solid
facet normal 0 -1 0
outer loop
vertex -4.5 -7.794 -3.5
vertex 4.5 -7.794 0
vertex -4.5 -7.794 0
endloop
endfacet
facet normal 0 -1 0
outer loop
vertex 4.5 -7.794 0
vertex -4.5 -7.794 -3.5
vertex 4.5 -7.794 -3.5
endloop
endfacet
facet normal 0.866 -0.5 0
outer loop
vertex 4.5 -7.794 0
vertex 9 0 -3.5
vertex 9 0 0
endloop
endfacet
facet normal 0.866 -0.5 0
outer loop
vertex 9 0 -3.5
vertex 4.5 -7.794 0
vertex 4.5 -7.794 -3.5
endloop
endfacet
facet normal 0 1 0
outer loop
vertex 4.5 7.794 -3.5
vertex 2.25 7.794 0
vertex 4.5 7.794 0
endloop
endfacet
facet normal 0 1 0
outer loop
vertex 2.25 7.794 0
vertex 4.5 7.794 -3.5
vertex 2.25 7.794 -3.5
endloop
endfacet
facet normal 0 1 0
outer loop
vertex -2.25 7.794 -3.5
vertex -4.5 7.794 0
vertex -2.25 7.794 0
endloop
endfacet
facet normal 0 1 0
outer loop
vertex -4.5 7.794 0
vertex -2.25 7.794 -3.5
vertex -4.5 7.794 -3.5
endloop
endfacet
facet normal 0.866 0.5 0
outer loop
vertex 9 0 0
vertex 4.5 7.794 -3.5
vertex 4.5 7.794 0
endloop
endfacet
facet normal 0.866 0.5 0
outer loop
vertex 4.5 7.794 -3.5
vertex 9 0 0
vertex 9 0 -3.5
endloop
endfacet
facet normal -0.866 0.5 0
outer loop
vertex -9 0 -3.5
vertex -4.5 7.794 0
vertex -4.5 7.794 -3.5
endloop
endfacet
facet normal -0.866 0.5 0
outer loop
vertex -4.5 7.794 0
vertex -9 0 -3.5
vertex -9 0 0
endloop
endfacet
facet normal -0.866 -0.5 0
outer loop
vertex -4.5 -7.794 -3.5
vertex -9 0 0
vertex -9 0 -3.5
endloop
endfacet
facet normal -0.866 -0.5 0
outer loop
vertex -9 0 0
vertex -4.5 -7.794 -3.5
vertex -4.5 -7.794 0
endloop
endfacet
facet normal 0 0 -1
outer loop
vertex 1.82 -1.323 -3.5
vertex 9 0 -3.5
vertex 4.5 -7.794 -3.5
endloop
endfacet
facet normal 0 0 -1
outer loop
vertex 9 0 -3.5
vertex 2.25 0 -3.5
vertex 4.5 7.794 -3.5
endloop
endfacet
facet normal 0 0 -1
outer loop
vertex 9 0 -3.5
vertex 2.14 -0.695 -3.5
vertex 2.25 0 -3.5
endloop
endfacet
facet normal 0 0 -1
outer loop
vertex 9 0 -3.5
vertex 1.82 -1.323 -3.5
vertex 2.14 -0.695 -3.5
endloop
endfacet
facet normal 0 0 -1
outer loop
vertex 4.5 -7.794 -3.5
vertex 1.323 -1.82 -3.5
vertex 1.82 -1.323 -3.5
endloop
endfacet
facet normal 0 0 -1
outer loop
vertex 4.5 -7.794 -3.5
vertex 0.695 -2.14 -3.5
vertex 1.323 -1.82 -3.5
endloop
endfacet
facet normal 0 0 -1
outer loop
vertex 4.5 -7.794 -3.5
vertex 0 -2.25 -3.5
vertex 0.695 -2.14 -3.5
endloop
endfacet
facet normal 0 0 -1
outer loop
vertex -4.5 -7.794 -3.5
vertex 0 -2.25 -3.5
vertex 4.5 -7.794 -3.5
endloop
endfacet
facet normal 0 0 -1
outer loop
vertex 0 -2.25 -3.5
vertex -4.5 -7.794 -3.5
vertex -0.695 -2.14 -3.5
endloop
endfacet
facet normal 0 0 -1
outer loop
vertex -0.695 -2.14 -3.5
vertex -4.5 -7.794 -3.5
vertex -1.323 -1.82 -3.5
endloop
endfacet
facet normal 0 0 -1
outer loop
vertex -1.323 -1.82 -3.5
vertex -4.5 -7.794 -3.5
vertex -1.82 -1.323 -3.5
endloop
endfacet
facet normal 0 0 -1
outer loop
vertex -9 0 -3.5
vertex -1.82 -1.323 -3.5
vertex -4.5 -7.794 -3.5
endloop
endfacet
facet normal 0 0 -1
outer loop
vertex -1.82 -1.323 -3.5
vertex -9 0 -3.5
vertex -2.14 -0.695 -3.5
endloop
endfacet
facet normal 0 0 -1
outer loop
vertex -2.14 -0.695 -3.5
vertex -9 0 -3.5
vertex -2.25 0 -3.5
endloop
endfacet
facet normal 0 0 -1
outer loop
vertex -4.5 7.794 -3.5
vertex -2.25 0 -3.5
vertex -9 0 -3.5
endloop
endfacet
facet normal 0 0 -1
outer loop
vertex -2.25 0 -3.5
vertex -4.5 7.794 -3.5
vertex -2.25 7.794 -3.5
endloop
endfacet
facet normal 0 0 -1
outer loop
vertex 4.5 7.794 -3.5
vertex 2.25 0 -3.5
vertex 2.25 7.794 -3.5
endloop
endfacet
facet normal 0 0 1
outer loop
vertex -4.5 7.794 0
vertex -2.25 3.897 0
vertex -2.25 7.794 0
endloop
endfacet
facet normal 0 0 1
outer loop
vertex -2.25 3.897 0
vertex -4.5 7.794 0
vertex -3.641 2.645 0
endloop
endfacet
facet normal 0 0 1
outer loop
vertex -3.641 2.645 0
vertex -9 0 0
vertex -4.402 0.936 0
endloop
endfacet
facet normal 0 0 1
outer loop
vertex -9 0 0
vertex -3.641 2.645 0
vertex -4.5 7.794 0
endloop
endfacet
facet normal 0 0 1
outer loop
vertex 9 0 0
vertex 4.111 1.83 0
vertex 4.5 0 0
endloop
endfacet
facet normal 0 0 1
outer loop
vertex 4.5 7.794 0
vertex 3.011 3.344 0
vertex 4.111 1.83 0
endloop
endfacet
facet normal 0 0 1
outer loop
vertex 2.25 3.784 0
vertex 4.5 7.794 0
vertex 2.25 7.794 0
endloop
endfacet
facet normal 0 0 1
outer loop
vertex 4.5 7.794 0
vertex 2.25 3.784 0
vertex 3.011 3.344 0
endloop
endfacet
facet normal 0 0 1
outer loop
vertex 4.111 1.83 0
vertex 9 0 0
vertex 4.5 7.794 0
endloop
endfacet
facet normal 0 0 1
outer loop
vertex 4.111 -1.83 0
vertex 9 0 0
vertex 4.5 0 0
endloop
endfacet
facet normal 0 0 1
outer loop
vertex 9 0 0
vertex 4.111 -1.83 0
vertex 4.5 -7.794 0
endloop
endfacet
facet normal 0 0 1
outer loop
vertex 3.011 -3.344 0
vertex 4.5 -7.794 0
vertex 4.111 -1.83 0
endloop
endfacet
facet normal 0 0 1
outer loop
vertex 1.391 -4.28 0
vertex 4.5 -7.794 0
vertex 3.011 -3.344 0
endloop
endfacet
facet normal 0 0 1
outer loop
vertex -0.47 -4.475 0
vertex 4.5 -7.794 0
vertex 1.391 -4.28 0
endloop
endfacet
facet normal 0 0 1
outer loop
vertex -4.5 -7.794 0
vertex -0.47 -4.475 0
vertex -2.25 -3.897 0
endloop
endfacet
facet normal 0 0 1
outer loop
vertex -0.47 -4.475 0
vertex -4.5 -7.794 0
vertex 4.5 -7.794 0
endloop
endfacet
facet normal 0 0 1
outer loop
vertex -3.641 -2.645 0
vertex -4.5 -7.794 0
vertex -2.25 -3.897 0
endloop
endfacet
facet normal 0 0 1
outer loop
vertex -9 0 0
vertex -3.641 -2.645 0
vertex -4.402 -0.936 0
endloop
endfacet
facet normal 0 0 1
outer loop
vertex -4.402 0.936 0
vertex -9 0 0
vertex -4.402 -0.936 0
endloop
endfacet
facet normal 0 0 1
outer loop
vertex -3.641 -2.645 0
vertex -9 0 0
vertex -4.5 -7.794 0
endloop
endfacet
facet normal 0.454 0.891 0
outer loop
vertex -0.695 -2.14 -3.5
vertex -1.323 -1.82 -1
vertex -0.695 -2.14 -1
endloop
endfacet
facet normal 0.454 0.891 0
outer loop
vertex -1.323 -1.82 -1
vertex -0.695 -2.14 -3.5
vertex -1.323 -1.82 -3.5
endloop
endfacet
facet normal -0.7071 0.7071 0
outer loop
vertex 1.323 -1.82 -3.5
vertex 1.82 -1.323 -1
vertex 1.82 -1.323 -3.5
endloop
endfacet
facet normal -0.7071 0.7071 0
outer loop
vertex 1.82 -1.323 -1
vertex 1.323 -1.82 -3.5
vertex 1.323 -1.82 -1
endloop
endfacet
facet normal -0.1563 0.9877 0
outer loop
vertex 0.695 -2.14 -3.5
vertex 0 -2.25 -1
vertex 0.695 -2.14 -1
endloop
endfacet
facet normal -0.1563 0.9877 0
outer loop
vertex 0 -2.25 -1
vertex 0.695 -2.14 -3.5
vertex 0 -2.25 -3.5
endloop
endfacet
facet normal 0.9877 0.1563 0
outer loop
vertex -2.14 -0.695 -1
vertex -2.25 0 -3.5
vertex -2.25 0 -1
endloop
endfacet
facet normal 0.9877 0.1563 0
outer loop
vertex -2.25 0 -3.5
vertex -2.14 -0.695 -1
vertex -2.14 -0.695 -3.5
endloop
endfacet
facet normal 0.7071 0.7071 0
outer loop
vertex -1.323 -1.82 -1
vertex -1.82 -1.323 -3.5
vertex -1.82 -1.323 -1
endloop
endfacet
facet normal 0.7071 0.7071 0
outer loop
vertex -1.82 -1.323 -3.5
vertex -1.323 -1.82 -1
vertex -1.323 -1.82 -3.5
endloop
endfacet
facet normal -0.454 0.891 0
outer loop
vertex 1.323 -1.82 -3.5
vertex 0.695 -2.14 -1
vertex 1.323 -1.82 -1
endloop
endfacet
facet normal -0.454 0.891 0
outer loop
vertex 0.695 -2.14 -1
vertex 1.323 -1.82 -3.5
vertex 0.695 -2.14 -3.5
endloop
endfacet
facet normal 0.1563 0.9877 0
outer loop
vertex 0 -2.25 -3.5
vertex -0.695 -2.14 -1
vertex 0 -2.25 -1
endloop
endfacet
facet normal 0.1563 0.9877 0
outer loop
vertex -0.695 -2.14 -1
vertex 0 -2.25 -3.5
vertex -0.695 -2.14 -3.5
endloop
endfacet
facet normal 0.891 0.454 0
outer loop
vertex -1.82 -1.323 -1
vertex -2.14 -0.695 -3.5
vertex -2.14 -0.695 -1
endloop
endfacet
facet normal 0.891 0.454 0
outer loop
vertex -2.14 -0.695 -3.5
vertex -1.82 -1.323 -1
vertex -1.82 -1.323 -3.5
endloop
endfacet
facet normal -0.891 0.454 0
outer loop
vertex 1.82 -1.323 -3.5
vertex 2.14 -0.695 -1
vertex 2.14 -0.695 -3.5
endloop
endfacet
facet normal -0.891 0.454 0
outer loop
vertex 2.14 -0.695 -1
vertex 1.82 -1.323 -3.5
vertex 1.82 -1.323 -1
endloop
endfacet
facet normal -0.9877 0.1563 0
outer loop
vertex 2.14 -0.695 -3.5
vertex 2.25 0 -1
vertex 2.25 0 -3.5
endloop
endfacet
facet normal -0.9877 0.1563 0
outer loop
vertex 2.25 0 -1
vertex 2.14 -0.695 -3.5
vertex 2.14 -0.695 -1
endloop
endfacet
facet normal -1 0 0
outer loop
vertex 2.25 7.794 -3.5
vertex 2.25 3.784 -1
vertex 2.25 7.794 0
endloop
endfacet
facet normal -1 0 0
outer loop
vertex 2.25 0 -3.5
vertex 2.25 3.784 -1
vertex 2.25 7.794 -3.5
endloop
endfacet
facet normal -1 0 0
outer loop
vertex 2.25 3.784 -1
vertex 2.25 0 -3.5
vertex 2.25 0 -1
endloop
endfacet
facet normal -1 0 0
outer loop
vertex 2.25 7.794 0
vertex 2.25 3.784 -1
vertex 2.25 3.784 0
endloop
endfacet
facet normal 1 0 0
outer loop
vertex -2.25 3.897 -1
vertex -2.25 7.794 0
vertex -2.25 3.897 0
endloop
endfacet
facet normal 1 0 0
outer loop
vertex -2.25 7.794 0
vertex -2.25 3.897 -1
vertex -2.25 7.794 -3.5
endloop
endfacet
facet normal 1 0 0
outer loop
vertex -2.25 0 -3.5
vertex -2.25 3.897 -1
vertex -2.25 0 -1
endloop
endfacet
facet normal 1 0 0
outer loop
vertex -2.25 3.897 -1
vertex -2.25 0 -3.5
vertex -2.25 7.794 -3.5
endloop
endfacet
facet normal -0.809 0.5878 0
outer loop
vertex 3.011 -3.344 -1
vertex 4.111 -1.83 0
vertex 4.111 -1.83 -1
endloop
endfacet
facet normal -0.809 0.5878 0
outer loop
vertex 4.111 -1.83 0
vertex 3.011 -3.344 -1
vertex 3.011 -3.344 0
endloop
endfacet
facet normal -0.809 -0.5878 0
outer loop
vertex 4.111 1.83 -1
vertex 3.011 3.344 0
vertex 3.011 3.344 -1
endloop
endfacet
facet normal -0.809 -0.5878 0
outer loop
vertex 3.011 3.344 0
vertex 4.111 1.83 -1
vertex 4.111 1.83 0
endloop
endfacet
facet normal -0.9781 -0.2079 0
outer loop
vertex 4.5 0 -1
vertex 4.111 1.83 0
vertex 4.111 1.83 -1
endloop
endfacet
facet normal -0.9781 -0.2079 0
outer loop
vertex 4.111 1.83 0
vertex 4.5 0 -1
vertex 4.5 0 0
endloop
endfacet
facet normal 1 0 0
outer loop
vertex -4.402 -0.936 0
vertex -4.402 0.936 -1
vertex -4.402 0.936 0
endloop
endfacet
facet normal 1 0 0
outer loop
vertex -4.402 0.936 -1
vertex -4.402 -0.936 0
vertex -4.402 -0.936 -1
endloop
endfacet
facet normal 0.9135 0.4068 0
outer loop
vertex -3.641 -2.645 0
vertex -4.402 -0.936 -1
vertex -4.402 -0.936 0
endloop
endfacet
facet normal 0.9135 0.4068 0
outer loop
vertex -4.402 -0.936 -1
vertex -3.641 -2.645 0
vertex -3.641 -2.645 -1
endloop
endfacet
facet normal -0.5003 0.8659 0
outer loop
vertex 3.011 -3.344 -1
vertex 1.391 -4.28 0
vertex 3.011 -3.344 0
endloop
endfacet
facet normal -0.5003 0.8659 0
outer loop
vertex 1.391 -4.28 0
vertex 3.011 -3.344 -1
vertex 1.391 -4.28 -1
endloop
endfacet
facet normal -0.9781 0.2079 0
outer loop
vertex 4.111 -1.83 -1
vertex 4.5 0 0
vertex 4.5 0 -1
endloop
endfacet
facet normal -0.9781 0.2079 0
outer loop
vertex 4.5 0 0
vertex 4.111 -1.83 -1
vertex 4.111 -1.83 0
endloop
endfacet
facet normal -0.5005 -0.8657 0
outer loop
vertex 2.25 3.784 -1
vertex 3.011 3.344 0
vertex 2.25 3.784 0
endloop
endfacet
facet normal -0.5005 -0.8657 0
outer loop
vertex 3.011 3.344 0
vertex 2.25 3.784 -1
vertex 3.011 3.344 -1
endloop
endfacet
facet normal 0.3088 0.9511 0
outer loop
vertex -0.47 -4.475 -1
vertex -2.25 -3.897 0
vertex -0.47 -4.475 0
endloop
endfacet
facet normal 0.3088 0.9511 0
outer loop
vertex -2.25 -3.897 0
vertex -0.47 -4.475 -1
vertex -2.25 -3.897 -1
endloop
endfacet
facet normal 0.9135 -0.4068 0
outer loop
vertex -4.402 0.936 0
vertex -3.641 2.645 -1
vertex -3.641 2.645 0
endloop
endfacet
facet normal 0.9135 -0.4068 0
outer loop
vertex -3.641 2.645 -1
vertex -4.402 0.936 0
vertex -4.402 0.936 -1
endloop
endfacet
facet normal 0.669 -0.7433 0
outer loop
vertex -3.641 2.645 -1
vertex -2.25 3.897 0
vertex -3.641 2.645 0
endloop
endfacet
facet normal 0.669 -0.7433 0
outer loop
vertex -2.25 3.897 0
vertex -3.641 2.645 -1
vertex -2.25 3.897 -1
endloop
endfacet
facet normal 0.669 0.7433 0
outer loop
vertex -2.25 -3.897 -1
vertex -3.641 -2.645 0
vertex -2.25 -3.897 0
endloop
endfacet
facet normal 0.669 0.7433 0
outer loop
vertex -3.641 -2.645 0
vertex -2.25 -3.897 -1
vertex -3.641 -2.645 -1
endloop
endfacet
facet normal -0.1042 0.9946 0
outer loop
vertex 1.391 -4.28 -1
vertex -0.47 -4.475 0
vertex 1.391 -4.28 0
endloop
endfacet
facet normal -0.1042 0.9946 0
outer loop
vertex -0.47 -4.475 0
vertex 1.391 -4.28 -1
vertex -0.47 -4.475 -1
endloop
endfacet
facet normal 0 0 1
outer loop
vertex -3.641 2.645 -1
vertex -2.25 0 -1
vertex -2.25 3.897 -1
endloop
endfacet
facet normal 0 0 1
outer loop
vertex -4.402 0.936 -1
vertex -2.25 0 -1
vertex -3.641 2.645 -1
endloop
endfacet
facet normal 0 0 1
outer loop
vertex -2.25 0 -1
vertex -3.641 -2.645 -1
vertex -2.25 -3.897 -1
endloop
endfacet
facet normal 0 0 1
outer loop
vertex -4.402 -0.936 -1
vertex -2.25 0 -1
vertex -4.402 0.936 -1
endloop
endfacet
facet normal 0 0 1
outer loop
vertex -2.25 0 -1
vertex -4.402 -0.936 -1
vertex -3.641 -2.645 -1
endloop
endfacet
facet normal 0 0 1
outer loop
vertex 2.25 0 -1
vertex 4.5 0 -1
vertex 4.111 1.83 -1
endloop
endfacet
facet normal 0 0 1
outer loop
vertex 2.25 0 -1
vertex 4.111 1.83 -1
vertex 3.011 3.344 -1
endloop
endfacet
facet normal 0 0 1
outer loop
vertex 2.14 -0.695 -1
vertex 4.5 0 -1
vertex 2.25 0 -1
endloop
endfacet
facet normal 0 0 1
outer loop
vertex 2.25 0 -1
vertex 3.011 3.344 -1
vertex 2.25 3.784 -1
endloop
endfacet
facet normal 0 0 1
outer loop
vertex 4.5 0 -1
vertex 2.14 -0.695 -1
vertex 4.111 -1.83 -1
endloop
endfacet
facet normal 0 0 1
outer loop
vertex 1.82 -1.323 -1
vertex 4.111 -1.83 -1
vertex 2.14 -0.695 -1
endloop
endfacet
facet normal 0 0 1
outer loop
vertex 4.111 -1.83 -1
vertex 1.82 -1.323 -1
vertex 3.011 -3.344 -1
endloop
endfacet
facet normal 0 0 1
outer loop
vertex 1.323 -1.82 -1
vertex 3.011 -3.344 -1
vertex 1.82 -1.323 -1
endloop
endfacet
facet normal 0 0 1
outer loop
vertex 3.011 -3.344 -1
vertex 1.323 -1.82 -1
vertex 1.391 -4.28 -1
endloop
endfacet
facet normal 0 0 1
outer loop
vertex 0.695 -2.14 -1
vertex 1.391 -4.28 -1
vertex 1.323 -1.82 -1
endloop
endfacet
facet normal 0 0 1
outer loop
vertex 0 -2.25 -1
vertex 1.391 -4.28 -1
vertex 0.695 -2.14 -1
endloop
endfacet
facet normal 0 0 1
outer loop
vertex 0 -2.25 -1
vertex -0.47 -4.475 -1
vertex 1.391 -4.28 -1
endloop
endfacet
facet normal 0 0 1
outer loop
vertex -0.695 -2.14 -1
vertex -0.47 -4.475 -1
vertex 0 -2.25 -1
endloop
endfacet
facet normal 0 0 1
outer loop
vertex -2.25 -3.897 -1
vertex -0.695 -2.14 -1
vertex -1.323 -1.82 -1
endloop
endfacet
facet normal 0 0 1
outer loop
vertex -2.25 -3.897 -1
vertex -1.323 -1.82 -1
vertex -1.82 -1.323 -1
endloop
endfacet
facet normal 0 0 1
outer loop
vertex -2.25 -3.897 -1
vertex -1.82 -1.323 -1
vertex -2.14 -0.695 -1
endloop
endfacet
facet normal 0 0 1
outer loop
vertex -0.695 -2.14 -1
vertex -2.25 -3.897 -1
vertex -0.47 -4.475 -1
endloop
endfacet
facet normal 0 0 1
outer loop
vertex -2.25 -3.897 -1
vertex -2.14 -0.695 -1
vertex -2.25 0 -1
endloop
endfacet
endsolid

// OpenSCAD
di = 4.5; // inner (screw hole) diameter (with margin)
dh = 9; // screw head diameter (with margin)
do = 18; // outer diameter

h1 = 2.5; // solid part height
h2 = 1; // screw head slot height

large = 100;

mirror([0,0,1]) difference() {
    cylinder(d=do, h=h1+h2, $fn=6);
    cylinder(d=di, h=large, center=true, $fn=20);
    translate([-di/2,0,-large]) cube([di, large, 2*large]);
    cylinder(d=dh, h=h2);
}
